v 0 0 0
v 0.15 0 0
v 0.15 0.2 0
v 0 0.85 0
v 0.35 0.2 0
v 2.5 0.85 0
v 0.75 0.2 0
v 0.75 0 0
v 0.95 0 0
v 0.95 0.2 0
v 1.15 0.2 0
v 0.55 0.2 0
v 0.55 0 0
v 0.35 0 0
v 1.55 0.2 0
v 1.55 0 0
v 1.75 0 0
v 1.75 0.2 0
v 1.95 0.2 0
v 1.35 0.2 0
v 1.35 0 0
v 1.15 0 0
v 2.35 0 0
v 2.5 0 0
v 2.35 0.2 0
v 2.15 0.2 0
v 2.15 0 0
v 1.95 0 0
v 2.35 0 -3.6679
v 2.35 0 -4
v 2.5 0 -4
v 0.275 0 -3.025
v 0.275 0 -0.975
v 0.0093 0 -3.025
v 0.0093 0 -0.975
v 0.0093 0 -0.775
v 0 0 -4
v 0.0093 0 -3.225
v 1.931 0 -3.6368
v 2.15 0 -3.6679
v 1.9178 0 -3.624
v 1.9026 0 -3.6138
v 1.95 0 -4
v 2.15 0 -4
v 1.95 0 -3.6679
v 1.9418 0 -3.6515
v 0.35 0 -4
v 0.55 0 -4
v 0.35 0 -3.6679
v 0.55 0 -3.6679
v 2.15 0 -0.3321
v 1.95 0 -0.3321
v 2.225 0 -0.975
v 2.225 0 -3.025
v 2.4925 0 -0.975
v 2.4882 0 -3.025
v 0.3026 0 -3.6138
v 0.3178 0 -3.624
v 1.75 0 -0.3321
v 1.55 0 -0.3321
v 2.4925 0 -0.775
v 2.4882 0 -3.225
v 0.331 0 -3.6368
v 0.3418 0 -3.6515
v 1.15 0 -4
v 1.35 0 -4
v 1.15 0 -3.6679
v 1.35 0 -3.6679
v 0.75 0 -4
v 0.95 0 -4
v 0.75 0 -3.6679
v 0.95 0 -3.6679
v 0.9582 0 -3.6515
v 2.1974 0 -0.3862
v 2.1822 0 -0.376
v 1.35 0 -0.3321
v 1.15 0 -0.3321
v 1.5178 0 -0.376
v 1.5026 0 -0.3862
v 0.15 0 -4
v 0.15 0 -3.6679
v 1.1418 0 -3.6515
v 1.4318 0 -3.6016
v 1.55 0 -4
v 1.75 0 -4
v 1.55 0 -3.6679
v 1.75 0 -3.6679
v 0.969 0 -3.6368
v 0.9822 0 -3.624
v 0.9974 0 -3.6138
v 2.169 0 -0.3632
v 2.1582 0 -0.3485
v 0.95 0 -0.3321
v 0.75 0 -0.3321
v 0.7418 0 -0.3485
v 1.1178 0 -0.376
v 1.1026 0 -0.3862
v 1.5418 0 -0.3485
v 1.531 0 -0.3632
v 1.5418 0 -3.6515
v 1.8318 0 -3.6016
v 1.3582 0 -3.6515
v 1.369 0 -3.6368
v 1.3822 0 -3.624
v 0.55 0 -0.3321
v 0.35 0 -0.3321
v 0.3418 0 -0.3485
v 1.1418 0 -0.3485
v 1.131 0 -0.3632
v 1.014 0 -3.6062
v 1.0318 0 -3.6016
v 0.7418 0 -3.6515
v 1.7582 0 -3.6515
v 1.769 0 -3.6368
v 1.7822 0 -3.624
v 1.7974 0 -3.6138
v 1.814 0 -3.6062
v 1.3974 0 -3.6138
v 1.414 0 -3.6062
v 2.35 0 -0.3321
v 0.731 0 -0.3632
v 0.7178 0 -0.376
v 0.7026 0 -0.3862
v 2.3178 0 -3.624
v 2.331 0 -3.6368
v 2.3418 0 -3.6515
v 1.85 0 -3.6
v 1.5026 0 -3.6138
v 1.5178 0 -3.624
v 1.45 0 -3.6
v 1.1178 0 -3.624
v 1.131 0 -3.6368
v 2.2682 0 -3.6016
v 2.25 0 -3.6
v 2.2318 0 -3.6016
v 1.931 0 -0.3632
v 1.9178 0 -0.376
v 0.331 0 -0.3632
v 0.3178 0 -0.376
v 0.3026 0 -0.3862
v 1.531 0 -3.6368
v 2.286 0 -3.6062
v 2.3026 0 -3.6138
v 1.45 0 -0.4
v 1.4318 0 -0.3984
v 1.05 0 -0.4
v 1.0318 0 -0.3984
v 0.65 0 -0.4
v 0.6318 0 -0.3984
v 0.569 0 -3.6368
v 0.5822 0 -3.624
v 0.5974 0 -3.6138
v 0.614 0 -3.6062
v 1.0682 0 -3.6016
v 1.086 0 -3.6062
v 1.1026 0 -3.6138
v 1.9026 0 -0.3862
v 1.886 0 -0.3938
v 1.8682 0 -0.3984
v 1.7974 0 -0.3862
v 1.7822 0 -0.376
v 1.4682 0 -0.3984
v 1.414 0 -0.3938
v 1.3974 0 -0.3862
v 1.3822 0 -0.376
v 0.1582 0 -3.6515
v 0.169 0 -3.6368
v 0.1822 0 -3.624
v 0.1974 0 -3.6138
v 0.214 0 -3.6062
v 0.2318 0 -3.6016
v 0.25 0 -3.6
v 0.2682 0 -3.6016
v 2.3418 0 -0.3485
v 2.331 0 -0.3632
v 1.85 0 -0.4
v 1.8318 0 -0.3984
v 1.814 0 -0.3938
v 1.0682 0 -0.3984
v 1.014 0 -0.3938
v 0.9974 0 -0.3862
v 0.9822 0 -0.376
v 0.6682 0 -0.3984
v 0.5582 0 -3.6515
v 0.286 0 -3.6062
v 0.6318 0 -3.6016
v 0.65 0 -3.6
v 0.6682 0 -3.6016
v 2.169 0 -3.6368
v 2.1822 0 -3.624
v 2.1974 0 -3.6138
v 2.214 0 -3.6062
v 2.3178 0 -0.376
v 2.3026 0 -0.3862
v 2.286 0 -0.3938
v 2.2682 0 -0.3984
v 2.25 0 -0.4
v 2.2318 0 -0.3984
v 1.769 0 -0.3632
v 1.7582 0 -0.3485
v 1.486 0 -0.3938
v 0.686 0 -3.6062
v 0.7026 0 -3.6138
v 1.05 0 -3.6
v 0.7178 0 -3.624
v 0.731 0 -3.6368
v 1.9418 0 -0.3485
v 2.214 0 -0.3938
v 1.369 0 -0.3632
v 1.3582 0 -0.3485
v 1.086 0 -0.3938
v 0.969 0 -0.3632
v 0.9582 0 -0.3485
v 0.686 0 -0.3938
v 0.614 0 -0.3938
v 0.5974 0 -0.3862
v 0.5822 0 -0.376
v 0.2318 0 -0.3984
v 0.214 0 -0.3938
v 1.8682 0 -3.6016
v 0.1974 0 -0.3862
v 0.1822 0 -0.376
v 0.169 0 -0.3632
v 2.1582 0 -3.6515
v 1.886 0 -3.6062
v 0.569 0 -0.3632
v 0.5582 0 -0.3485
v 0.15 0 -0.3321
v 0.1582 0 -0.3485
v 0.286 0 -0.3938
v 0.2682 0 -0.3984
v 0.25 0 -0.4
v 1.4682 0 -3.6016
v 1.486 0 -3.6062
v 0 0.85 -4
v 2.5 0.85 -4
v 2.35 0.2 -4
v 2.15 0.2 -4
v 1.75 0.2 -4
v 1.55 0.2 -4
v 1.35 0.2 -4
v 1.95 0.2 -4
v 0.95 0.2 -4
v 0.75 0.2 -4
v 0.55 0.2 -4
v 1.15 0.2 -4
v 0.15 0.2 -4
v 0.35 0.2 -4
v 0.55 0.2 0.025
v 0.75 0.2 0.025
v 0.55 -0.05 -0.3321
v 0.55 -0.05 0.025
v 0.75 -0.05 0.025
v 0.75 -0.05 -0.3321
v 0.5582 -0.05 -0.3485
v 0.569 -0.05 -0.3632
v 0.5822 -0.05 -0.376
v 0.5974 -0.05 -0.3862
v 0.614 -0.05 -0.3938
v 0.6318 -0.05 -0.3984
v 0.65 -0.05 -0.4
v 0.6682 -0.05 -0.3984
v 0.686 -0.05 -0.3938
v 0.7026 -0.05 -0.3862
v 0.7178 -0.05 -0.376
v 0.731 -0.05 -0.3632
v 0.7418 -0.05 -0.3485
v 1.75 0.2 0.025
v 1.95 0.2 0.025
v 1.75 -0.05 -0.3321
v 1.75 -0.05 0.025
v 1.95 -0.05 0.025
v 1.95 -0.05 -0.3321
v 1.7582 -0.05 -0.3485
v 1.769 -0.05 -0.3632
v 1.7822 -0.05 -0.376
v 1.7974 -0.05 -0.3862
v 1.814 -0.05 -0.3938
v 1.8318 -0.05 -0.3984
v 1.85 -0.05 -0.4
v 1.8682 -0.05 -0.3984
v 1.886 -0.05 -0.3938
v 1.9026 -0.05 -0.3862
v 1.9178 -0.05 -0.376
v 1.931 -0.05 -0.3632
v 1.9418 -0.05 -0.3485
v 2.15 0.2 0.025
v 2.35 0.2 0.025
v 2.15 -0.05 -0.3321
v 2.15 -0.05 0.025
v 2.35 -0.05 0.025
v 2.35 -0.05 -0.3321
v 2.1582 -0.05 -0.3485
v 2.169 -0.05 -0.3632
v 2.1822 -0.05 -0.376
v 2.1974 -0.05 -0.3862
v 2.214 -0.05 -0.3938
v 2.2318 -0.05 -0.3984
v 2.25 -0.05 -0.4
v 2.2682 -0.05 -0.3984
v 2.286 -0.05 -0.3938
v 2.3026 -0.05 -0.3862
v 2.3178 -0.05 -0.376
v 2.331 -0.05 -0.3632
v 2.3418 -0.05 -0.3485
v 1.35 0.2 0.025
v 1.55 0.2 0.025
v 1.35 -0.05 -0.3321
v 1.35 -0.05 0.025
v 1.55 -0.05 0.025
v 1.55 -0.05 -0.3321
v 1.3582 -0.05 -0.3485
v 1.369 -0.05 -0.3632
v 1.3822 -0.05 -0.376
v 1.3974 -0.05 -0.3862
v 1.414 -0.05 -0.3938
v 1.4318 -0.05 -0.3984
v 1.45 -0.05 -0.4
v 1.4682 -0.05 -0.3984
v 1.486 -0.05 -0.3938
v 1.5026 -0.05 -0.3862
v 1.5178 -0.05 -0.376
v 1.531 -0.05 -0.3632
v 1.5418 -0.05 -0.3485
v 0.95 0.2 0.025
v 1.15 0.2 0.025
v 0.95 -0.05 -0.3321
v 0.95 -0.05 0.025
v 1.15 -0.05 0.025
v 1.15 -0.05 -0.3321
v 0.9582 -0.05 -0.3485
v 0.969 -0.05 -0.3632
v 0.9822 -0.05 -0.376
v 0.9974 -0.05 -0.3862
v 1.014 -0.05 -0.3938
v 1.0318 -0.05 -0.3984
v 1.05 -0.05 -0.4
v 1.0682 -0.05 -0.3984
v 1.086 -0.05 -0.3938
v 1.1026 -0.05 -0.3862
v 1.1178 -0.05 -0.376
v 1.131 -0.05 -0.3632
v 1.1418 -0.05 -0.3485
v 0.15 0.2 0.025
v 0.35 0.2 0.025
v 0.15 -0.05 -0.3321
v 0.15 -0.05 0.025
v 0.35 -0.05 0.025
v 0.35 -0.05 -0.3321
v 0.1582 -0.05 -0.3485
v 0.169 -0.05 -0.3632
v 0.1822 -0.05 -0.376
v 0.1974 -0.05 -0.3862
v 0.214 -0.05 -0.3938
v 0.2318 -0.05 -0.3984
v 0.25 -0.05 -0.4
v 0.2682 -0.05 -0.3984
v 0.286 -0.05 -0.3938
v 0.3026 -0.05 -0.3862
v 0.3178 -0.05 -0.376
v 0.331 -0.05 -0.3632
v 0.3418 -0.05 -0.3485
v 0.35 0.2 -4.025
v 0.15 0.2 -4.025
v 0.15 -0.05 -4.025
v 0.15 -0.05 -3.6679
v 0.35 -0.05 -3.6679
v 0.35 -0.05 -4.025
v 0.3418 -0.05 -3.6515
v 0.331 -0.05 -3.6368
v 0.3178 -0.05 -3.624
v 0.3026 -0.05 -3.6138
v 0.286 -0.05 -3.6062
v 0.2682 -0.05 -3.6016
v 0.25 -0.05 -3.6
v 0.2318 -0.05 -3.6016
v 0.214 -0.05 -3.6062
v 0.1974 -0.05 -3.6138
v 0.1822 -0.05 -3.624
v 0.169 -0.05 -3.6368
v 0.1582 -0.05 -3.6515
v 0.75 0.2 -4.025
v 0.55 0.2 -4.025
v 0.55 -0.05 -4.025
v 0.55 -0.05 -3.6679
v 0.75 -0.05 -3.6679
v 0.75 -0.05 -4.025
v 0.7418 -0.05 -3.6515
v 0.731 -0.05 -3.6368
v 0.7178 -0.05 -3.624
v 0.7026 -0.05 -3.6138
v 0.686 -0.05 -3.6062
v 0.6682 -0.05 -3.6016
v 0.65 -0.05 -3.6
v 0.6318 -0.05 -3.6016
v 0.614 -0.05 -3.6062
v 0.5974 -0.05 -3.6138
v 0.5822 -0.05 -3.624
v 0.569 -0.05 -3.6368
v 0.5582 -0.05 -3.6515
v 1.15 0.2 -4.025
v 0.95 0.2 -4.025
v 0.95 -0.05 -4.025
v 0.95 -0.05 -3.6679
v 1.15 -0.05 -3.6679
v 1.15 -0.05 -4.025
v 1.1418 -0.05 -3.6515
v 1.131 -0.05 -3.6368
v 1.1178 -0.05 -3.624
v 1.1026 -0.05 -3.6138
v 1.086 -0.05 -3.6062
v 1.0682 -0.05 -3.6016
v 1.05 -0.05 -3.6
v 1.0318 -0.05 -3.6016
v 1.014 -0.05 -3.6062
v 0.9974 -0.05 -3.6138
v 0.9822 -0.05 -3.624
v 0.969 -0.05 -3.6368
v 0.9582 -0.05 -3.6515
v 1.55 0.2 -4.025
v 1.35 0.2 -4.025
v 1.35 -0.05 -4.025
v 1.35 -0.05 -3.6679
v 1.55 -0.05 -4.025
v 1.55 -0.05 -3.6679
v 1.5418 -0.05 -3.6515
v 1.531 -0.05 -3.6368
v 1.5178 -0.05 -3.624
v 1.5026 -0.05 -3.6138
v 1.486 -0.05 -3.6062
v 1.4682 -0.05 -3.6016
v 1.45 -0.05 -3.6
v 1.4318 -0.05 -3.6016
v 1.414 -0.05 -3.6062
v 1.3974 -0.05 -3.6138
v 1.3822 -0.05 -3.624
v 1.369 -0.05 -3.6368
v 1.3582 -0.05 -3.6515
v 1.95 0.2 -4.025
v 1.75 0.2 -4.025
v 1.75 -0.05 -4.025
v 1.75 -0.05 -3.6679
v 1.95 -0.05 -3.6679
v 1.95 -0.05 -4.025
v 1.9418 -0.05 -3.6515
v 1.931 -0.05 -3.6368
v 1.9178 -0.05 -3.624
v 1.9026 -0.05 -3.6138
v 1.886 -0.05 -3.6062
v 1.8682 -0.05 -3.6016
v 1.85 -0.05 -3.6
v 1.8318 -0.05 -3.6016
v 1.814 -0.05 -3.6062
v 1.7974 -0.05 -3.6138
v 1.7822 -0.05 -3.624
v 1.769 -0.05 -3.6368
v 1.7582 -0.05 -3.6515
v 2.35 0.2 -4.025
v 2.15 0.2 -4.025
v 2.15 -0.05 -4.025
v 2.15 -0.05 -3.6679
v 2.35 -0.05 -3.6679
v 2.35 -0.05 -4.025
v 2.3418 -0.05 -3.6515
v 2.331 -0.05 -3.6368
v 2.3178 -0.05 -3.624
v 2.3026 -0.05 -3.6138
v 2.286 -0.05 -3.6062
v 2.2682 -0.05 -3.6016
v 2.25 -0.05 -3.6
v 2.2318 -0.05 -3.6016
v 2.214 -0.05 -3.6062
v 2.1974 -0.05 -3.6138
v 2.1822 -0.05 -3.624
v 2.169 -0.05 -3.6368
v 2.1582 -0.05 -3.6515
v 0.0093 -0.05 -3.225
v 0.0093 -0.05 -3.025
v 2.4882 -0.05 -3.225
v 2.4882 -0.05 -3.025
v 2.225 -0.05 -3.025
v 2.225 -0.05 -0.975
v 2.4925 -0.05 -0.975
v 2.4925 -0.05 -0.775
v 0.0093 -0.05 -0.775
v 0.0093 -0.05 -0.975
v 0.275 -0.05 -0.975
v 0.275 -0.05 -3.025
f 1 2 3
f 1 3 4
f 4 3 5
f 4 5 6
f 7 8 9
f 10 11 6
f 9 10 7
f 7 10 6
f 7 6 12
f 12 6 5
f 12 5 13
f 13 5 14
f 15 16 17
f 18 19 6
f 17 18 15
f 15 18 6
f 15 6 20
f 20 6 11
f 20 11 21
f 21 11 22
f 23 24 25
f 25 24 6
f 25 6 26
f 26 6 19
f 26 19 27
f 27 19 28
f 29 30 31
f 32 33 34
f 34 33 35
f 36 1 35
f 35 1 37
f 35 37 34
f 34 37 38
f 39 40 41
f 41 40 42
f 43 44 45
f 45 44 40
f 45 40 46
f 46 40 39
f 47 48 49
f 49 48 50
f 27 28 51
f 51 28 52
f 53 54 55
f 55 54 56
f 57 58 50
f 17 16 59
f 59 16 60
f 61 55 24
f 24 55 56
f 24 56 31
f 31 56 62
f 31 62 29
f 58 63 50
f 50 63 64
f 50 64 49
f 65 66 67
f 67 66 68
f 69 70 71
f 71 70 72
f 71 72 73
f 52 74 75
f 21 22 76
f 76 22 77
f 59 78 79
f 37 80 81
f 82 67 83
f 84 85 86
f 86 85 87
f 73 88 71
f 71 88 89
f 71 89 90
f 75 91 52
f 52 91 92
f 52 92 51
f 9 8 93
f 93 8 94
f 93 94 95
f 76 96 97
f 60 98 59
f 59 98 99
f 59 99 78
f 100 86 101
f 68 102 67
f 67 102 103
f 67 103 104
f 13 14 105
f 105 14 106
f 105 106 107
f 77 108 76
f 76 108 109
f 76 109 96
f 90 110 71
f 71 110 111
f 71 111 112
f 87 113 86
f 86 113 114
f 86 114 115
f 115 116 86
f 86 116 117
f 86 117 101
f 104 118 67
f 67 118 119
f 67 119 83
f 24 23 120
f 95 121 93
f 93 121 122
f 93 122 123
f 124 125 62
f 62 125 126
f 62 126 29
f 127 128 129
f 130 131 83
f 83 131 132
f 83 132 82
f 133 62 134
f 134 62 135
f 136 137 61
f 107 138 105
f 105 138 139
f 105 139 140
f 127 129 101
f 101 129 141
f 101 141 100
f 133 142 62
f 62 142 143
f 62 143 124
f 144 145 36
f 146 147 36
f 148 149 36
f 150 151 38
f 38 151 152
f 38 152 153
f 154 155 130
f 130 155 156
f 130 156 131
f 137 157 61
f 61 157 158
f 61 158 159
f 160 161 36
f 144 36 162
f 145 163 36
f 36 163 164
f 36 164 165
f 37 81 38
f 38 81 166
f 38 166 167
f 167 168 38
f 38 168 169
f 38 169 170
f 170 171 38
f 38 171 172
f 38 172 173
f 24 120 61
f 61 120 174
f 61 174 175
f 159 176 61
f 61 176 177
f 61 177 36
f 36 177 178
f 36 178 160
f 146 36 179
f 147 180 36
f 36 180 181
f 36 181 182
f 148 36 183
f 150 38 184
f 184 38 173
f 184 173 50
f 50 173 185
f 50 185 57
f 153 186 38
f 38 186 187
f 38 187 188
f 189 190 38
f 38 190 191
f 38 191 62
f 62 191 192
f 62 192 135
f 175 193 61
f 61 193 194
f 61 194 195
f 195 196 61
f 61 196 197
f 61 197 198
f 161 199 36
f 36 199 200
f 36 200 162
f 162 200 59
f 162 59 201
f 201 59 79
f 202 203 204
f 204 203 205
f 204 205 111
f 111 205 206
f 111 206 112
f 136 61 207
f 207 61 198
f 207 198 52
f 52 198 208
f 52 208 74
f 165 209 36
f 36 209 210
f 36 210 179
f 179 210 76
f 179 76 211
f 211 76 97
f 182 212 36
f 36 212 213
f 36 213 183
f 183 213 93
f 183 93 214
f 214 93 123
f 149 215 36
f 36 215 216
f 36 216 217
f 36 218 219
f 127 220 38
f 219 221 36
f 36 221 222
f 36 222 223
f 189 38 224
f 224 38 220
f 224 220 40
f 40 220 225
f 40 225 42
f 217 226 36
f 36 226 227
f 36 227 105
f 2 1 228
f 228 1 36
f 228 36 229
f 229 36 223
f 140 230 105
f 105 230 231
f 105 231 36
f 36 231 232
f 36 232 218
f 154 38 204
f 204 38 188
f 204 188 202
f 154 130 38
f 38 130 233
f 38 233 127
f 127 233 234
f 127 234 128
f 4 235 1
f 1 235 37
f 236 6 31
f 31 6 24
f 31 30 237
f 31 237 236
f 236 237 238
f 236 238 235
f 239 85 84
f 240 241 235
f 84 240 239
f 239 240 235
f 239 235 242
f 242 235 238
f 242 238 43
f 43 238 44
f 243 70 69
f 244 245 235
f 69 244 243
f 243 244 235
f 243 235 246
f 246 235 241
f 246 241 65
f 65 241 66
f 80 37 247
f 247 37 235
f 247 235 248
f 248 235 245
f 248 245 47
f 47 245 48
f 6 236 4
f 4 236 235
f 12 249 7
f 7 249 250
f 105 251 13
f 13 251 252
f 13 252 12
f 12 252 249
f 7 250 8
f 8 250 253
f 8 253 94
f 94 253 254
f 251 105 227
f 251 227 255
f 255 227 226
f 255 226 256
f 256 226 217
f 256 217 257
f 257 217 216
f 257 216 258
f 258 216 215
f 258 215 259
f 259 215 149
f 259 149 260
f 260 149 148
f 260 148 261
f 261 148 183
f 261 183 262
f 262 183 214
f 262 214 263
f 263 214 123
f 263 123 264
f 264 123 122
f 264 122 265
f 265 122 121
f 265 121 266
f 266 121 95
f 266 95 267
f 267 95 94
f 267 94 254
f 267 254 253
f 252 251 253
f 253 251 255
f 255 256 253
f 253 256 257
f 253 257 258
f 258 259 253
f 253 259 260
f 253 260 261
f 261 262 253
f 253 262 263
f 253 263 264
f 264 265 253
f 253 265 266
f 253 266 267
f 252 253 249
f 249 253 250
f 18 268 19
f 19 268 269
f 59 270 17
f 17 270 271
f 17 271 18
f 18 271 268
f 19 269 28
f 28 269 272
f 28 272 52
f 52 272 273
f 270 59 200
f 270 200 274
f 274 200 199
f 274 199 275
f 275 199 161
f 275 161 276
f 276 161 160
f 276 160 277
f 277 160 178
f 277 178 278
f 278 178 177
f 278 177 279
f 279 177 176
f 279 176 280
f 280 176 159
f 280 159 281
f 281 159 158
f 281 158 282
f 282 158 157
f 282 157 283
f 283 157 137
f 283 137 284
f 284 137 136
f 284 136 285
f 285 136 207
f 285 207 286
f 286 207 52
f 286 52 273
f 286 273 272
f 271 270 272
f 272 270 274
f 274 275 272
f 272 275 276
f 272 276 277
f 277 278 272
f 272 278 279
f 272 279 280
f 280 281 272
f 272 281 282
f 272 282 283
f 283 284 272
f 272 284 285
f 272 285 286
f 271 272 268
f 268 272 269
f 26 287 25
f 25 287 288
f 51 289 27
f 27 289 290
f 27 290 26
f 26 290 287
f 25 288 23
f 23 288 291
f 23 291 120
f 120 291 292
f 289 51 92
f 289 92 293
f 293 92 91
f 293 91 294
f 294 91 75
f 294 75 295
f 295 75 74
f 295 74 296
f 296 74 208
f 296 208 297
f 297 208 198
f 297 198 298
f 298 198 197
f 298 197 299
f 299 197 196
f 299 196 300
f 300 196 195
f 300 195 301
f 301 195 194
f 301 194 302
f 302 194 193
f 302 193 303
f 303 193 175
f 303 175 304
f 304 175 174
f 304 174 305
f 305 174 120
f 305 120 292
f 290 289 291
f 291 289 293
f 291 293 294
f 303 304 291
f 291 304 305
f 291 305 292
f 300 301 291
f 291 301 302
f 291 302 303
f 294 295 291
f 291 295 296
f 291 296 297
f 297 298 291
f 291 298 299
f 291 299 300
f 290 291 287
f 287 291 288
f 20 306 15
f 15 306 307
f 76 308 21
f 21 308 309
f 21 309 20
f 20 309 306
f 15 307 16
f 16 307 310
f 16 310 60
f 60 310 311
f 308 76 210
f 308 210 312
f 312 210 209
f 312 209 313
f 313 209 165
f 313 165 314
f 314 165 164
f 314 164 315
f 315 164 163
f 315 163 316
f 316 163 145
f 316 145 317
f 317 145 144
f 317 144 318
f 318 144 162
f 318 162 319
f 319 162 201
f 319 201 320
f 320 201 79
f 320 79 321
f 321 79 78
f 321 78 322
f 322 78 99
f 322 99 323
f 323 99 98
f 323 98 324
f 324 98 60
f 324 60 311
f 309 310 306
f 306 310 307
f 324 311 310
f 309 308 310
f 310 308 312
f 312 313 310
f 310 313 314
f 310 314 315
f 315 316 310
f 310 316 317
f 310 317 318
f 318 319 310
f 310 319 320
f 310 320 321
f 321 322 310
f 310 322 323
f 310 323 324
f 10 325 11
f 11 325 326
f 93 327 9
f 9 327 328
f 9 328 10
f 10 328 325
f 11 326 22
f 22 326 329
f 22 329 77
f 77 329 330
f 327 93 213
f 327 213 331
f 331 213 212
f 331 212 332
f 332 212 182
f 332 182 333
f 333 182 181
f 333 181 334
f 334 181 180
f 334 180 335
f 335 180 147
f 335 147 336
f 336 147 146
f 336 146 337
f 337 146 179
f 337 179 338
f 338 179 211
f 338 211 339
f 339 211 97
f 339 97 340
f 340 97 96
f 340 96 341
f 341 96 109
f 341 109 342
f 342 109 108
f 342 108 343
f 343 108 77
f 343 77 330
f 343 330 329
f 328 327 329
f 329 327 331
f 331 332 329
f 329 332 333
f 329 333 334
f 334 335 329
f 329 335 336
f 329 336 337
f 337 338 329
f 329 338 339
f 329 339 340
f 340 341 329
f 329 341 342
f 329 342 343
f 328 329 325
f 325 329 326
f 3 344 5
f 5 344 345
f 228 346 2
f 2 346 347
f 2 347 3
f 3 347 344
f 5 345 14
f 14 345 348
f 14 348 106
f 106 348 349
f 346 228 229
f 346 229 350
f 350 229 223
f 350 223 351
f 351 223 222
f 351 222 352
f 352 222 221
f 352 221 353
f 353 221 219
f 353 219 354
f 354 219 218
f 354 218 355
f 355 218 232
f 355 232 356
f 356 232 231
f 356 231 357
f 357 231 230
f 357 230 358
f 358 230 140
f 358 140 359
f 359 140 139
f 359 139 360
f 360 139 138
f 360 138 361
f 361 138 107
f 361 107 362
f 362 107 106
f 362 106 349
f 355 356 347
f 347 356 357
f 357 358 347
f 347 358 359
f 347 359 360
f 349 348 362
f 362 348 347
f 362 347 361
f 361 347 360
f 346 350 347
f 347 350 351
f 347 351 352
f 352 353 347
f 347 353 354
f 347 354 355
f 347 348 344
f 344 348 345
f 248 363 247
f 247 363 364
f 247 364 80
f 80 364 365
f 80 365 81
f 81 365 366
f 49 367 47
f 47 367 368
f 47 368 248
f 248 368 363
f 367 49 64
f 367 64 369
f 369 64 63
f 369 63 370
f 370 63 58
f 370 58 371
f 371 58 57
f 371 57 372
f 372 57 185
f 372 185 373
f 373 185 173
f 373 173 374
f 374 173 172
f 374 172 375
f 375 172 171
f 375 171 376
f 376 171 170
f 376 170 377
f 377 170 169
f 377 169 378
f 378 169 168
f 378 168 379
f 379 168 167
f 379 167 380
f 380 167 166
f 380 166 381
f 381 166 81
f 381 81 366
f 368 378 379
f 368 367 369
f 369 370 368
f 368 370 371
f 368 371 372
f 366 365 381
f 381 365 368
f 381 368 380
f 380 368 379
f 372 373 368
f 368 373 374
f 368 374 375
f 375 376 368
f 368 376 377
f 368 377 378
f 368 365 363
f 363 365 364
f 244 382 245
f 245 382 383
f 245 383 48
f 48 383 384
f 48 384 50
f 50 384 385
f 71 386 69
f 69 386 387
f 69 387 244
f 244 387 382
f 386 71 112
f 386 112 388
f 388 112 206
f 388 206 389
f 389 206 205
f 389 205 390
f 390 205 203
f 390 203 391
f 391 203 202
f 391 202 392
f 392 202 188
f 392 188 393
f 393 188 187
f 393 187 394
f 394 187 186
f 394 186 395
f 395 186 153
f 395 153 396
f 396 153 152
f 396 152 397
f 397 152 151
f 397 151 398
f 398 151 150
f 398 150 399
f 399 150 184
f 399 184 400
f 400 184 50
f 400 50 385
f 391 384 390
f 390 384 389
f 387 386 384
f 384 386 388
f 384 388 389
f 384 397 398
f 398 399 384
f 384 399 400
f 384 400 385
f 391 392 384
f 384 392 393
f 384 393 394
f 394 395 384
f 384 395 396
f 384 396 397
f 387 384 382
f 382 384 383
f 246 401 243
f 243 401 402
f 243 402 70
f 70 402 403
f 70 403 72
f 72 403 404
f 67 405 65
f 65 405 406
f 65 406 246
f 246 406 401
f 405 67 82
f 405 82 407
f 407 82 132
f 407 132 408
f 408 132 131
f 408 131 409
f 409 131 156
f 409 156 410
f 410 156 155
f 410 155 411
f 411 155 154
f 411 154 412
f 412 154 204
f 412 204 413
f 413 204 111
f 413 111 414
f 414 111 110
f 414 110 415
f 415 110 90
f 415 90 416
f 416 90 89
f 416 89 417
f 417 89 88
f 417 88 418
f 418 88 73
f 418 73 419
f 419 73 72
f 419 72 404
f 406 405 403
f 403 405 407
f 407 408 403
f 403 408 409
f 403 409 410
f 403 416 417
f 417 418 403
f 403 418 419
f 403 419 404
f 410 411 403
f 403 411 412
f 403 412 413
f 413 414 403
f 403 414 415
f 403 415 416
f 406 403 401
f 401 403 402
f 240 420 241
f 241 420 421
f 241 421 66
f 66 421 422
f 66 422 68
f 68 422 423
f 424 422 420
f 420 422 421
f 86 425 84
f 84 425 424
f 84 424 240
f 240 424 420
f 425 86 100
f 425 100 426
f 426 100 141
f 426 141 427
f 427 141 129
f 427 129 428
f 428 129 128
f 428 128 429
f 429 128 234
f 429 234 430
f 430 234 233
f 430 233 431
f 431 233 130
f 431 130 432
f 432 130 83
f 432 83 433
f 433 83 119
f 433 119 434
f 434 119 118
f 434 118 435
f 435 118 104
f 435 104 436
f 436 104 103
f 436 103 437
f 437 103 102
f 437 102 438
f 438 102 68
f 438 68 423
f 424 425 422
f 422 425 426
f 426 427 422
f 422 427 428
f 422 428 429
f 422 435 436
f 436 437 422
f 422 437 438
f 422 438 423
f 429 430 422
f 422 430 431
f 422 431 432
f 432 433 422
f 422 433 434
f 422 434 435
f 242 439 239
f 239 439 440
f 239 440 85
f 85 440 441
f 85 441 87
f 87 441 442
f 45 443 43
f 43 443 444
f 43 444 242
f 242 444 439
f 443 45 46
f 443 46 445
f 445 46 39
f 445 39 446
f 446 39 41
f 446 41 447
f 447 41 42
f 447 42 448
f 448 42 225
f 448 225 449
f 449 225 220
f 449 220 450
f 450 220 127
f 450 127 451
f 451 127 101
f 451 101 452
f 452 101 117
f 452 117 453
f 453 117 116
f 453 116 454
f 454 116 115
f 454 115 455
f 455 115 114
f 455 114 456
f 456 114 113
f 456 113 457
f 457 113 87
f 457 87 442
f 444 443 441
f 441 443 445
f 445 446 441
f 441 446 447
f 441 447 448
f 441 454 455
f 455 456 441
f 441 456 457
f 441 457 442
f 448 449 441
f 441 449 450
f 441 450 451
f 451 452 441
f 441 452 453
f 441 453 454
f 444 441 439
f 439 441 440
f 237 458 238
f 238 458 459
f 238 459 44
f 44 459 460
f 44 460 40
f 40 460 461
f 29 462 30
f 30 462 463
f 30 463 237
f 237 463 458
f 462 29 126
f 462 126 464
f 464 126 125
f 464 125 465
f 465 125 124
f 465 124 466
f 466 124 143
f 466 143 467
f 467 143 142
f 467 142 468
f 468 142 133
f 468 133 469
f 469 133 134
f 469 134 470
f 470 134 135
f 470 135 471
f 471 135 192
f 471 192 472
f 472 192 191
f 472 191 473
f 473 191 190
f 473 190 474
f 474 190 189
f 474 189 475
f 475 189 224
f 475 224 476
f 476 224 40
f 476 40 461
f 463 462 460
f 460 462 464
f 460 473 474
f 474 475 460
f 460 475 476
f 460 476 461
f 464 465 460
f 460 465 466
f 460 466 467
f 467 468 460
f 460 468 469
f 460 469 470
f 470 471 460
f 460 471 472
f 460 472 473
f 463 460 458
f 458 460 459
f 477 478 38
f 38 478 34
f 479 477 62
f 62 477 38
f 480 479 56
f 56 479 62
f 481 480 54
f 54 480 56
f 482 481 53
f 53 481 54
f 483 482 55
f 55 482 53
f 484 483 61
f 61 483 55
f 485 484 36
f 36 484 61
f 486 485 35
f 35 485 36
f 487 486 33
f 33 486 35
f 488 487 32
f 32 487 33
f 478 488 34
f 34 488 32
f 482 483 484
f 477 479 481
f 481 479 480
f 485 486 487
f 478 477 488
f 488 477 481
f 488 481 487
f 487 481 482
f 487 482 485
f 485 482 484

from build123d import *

# Parameters (mm, degrees)
SKETCH1_W           = 2.5
SKETCH1_H           = 4
BOSS_EXTRUDE1_DEPTH = 0.85
BOSS_EXTRUDE2_START = -0.2
BOSS_EXTRUDE2_DEPTH = 0.25
BOSS_EXTRUDE3_DEPTH = 0.05


with BuildPart() as part:
    # Sketch1 → Boss-Extrude1 (new body)
    with BuildSketch(Plane(origin=(0, 0, 0), x_dir=(1, 0, 0), z_dir=(0, 1, 0))):
        with Locations((1.25, 2)):
            Rectangle(SKETCH1_W, SKETCH1_H)
    extrude(amount=BOSS_EXTRUDE1_DEPTH)

    # Sketch2 → Boss-Extrude2 (add)
    with BuildSketch(Plane.XZ.offset(BOSS_EXTRUDE2_START)):
        with BuildLine():
            Line((1.75, 0.025), (1.75, -0.332105814))
            ThreePointArc((1.75, -0.332105814), (1.85, -0.4), (1.95, -0.332105814))
            Line((1.95, -0.332105814), (1.95, 0.025))
            Line((1.95, 0.025), (1.75, 0.025))
        make_face()
        with BuildLine():
            Line((1.35, 0.025), (1.35, -0.332105814))
            ThreePointArc((1.35, -0.332105814), (1.45, -0.4), (1.55, -0.332105814))
            Line((1.55, -0.332105814), (1.55, 0.025))
            Line((1.55, 0.025), (1.35, 0.025))
        make_face()
        with BuildLine():
            Line((2.15, 0.025), (2.15, -0.332105814))
            ThreePointArc((2.15, -0.332105814), (2.25, -0.4), (2.35, -0.332105814))
            Line((2.35, -0.332105814), (2.35, 0.025))
            Line((2.35, 0.025), (2.15, 0.025))
        make_face()
        with BuildLine():
            Line((0.95, 0.025), (0.95, -0.332105814))
            ThreePointArc((0.95, -0.332105814), (1.05, -0.4), (1.15, -0.332105814))
            Line((1.15, -0.332105814), (1.15, 0.025))
            Line((1.15, 0.025), (0.95, 0.025))
        make_face()
        with BuildLine():
            Line((0.55, 0.025), (0.55, -0.332105814))
            ThreePointArc((0.55, -0.332105814), (0.65, -0.4), (0.75, -0.332105814))
            Line((0.75, -0.332105814), (0.75, 0.025))
            Line((0.75, 0.025), (0.55, 0.025))
        make_face()
        with BuildLine():
            Line((0.15, 0.025), (0.15, -0.332105814))
            ThreePointArc((0.15, -0.332105814), (0.25, -0.4), (0.35, -0.332105814))
            Line((0.35, -0.332105814), (0.35, 0.025))
            Line((0.35, 0.025), (0.15, 0.025))
        make_face()
    boss_extrude2 = extrude(amount=BOSS_EXTRUDE2_DEPTH)

    # Mirror1: Boss-Extrude2 across plane
    add(boss_extrude2.mirror(Plane.XY.offset(-2)))

    # Sketch4 → Boss-Extrude3 (add)
    with BuildSketch(Plane.XZ):
        Polygon((2.488245591, -3.025), (2.225, -3.025), (2.225, -0.975), (2.492493394, -0.975), (2.492493394, -0.775), (1.25, -0.775), (0.00934793, -0.775), (0.00934793, -0.975), (0.275, -0.975), (0.275, -2), (0.275, -3.025), (0.00934793, -3.025), (0.00934793, -3.225), (1.25, -3.225), (2.488245591, -3.225), align=None)
    extrude(amount=BOSS_EXTRUDE3_DEPTH)


solid = part.part
